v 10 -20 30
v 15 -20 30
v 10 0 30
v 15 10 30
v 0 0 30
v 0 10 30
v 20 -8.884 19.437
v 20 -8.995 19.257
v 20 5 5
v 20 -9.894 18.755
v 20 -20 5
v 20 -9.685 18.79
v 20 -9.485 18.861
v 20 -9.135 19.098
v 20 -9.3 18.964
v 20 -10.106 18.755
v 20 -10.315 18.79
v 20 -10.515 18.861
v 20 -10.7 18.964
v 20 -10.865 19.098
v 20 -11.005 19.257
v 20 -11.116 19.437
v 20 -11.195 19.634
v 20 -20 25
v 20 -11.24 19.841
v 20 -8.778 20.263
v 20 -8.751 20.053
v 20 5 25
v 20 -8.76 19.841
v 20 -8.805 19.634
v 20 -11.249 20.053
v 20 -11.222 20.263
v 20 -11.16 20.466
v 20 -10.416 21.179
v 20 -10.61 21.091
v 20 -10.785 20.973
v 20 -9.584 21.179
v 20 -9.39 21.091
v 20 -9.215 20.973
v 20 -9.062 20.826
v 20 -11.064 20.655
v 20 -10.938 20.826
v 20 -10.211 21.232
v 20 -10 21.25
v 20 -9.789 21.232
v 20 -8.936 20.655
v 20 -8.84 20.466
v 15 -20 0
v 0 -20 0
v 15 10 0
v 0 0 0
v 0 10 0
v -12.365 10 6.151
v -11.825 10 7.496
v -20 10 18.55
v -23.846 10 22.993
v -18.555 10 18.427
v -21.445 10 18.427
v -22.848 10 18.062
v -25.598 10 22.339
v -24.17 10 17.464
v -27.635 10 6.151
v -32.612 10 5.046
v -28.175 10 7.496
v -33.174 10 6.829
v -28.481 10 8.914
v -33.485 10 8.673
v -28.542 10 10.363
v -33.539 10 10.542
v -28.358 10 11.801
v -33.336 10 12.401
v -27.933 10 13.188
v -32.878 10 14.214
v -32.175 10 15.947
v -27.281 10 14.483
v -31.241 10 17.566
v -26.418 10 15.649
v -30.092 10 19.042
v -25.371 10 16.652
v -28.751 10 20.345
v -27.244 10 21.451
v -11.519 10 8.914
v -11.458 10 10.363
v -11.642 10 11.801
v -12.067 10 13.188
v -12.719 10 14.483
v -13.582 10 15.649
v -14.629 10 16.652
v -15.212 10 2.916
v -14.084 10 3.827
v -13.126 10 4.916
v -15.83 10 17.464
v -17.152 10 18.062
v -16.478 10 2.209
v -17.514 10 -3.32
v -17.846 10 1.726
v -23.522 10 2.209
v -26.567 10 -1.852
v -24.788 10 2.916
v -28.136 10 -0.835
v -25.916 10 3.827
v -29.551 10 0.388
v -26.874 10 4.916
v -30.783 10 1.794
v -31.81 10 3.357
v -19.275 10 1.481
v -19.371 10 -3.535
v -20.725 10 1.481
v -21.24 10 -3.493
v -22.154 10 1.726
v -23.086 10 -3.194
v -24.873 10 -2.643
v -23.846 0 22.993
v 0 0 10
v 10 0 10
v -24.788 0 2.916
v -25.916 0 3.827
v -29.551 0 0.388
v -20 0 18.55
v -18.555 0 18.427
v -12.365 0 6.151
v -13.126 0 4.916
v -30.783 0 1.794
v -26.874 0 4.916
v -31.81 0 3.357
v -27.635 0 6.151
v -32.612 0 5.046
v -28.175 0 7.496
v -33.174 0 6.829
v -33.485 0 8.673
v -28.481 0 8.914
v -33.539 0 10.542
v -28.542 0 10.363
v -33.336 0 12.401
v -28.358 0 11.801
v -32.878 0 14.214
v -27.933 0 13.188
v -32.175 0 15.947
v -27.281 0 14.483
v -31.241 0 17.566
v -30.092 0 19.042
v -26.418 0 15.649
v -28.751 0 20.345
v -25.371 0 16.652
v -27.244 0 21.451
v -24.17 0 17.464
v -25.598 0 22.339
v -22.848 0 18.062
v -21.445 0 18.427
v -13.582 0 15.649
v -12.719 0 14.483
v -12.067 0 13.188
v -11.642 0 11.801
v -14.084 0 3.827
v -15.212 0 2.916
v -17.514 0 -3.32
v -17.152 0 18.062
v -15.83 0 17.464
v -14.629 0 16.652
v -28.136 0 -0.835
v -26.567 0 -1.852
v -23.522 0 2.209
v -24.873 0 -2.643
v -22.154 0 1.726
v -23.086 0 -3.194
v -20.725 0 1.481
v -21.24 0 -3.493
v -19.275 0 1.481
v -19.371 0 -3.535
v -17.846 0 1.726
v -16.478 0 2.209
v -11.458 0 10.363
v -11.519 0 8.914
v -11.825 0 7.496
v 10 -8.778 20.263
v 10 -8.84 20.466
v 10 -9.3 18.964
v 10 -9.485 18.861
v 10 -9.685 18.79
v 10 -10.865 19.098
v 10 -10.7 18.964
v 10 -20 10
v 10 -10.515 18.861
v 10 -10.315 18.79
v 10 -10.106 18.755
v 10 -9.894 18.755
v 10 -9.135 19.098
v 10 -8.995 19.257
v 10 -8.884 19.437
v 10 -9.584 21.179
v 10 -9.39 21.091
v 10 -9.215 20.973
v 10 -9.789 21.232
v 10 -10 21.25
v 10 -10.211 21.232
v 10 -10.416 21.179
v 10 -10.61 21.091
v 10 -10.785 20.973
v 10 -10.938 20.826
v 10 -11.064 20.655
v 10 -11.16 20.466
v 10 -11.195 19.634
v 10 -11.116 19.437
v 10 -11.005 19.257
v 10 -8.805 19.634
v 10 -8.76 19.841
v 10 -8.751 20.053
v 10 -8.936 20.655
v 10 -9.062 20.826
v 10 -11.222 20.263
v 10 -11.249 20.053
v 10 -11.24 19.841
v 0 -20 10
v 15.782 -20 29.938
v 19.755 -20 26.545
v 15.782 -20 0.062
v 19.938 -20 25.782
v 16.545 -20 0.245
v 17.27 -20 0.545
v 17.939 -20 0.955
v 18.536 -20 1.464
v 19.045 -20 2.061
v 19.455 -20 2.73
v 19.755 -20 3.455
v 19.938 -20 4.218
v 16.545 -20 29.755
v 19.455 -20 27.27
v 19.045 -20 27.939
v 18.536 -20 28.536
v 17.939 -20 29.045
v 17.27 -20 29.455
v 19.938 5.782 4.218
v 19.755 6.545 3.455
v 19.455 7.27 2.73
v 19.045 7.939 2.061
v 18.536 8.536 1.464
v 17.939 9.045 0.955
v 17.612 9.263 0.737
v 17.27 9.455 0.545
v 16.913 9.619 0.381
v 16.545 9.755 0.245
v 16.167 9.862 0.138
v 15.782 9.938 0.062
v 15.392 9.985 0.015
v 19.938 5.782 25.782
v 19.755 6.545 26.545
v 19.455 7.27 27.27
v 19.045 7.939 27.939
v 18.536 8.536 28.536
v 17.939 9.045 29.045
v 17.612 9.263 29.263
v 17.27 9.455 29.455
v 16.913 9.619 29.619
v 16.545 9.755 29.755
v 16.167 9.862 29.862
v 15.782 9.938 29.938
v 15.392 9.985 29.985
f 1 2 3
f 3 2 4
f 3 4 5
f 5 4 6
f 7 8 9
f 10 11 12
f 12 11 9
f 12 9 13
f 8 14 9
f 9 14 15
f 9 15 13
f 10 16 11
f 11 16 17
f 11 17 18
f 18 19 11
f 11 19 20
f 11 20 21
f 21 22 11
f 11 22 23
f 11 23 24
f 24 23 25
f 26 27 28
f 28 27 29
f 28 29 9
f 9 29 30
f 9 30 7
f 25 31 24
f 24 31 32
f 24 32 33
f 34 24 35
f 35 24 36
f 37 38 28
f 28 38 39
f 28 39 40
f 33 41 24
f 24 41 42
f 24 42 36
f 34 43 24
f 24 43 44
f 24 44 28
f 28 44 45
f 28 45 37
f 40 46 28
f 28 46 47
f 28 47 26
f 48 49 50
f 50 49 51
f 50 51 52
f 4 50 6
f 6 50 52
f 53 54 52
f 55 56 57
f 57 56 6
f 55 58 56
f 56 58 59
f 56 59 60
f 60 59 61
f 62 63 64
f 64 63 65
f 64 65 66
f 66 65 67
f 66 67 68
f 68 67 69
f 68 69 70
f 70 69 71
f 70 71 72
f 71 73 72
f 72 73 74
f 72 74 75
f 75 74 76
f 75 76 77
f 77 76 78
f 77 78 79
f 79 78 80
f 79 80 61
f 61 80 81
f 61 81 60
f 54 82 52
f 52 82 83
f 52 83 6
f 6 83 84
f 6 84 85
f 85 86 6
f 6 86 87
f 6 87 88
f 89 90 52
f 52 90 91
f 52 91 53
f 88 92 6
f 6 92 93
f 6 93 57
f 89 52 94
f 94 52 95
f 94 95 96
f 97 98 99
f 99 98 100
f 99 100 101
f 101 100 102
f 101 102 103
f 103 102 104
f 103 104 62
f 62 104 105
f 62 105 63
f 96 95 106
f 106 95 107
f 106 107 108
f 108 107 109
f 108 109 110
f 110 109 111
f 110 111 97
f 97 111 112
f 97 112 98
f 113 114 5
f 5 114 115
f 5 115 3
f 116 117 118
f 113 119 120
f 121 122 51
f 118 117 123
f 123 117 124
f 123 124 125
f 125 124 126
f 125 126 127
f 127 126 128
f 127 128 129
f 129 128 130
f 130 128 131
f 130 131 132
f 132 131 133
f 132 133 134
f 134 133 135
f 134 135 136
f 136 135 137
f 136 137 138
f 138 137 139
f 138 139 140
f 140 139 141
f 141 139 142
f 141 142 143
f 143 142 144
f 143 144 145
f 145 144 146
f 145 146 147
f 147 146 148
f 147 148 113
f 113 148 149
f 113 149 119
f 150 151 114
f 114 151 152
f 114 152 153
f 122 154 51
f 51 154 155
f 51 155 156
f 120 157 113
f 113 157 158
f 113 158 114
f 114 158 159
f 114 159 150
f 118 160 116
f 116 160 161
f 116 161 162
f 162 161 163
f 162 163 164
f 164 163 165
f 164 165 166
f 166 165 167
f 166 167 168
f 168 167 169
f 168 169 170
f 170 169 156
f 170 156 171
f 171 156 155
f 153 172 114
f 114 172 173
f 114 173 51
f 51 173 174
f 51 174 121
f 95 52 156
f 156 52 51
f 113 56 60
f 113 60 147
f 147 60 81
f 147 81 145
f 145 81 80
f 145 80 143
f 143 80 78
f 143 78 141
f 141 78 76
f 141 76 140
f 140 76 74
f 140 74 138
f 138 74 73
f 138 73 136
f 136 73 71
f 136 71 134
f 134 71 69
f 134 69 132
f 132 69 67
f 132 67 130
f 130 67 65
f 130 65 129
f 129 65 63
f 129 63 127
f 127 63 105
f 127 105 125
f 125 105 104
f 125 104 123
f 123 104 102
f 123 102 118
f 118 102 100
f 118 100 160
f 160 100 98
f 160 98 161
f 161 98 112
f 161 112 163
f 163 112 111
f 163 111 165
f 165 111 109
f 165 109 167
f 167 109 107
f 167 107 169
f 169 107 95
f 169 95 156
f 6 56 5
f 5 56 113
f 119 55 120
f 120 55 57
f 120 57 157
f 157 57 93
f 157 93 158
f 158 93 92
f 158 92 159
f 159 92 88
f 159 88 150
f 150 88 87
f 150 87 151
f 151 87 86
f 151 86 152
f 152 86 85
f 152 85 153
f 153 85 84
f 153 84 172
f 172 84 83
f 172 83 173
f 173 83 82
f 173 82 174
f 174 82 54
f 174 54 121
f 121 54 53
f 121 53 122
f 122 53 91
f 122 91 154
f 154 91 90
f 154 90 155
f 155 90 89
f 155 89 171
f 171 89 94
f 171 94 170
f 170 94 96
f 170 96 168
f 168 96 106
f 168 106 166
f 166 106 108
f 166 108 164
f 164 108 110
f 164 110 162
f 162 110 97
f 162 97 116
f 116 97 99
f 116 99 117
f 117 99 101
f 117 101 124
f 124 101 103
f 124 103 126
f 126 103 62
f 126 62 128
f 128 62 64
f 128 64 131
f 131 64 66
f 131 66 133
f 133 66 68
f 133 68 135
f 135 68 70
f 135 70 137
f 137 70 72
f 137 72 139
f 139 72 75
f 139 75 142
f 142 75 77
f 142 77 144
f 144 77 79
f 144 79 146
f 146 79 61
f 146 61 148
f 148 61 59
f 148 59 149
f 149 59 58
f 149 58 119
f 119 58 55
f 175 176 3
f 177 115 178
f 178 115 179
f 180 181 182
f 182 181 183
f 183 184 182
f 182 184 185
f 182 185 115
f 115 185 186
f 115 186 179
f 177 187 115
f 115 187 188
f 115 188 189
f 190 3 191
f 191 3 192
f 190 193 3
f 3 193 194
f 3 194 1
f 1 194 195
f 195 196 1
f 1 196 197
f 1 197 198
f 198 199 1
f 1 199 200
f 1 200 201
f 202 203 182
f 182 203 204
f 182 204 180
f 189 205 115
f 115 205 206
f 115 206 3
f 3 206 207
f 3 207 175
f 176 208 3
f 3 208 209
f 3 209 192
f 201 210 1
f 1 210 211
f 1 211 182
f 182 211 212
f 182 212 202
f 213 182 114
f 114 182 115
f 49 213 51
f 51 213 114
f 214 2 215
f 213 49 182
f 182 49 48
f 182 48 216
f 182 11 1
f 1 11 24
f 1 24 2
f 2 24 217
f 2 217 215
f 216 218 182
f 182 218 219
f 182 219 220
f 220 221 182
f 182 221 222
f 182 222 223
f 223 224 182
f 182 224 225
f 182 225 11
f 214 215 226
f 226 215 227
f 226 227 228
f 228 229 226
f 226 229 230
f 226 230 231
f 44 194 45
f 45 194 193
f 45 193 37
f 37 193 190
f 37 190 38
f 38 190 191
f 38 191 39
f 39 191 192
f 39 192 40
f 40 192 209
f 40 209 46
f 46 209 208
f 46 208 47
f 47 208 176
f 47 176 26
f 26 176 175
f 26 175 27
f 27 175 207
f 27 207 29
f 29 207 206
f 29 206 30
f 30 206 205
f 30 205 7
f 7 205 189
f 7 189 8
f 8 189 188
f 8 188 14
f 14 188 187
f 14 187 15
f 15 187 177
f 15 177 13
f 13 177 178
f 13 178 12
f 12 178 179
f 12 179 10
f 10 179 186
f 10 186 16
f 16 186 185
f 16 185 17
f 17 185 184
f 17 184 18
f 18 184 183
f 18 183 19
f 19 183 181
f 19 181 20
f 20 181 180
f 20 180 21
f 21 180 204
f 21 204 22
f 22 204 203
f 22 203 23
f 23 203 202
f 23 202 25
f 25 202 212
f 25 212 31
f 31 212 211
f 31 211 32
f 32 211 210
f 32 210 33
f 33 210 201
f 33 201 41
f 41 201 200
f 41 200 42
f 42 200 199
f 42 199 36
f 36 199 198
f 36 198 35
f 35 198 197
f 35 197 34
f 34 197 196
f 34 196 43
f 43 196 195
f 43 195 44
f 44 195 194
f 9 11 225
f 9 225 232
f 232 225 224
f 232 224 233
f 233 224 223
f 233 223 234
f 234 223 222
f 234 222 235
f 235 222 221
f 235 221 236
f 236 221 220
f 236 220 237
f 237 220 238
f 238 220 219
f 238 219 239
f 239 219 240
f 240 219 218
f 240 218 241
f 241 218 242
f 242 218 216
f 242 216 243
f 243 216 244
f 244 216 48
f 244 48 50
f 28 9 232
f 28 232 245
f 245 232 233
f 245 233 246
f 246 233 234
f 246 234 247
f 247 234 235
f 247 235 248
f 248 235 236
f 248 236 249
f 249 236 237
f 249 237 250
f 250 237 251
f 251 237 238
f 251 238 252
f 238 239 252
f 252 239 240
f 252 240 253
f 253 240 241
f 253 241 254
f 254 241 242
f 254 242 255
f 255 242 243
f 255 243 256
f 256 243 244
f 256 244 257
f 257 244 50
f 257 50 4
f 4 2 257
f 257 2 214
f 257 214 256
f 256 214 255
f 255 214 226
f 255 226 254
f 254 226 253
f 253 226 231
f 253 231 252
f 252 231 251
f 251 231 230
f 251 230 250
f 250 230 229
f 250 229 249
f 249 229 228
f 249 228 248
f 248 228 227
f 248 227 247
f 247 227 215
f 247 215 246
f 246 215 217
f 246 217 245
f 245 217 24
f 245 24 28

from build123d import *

# Parameters (mm, degrees)
SKETCH1_W           = 20
SKETCH1_H           = 30
BOSS_EXTRUDE1_DEPTH = 10
BOSS_EXTRUDE2_DEPTH = 10
SKETCH4_R           = 8.55
BOSS_EXTRUDE3_DEPTH = 10
CUT_EXTRUDE1_DEPTH  = 10
BOSS_EXTRUDE4_DEPTH = 10
SKETCH7_R           = 1.25
CUT_EXTRUDE2_DEPTH  = 10
FILLET1_R           = 5


with BuildPart() as part:
    # Sketch1 → Boss-Extrude1 (new body)
    with BuildSketch(Plane(origin=(0, 0, 0), x_dir=(1, 0, 0), z_dir=(0, 1, 0))):
        with Locations((10, -15)):
            Rectangle(SKETCH1_W, SKETCH1_H)
    extrude(amount=BOSS_EXTRUDE1_DEPTH)

    # Sketch2 → Boss-Extrude2 (add)
    with BuildSketch(Plane(origin=(0, 10, 0), x_dir=(1, 0, 0), z_dir=(0, 1, 0))):
        Polygon((0, 0), (0, -10), (10, -10), (10, -30), (20, -30), (20, 0), align=None)
    boss_extrude2 = extrude(amount=BOSS_EXTRUDE2_DEPTH)

    # Sketch4 → Boss-Extrude3 (add)
    with BuildSketch(Plane(origin=(0, 10, 0), x_dir=(1, 0, 0), z_dir=(0, 1, 0))):
        with BuildLine():
            Line((0, 0), (-17.51372228, 3.319944561))
            ThreePointArc((-17.51372228, 3.319944561), (-33.173842638, -6.829452704), (-23.846362702, -22.992613054))
            Line((-23.846362702, -22.992613054), (0, -30))
            Line((0, -30), (0, 0))
        make_face()
        with Locations(Location((-20, -10, 0), (0, 0, 270))):
            Circle(SKETCH4_R, mode=Mode.SUBTRACT)
    extrude(amount=-BOSS_EXTRUDE3_DEPTH)

    # Mirror1: Boss-Extrude2 across plane
    add(boss_extrude2.mirror(Plane(origin=(0, 5, 0), x_dir=(0, 0, 1), z_dir=(0, -1, 0))))

    # Sketch5 → Cut-Extrude1 (cut)
    with BuildSketch(Plane(origin=(0, 20, 0), x_dir=(1, 0, 0), z_dir=(0, 1, 0))):
        Polygon((20, 0), (0, 0), (0, -10), (10, -10), (10, -30), (20, -30), align=None)
    extrude(amount=-CUT_EXTRUDE1_DEPTH, mode=Mode.SUBTRACT)

    # Sketch6 → Boss-Extrude4 (add)
    with BuildSketch(Plane.XZ.offset(10)):
        Polygon((0, 0), (20, 0), (20, 30), (10, 30), (10, 10), (0, 10), align=None)
    extrude(amount=BOSS_EXTRUDE4_DEPTH)

    # Sketch7 → Cut-Extrude2 (cut)
    with BuildSketch(Plane.ZY.offset(-10)):
        with Locations((20, -10)):
            Circle(SKETCH7_R)
    extrude(amount=-CUT_EXTRUDE2_DEPTH, mode=Mode.SUBTRACT)

    # Fillet1
    fillet1_edges = [part.edges().sort_by_distance(p)[0] for p in [
        (20, -5, 0),
        (20, -5, 30),
        (20, 10, 15),
    ]]
    fillet(fillet1_edges, radius=FILLET1_R)


solid = part.part
